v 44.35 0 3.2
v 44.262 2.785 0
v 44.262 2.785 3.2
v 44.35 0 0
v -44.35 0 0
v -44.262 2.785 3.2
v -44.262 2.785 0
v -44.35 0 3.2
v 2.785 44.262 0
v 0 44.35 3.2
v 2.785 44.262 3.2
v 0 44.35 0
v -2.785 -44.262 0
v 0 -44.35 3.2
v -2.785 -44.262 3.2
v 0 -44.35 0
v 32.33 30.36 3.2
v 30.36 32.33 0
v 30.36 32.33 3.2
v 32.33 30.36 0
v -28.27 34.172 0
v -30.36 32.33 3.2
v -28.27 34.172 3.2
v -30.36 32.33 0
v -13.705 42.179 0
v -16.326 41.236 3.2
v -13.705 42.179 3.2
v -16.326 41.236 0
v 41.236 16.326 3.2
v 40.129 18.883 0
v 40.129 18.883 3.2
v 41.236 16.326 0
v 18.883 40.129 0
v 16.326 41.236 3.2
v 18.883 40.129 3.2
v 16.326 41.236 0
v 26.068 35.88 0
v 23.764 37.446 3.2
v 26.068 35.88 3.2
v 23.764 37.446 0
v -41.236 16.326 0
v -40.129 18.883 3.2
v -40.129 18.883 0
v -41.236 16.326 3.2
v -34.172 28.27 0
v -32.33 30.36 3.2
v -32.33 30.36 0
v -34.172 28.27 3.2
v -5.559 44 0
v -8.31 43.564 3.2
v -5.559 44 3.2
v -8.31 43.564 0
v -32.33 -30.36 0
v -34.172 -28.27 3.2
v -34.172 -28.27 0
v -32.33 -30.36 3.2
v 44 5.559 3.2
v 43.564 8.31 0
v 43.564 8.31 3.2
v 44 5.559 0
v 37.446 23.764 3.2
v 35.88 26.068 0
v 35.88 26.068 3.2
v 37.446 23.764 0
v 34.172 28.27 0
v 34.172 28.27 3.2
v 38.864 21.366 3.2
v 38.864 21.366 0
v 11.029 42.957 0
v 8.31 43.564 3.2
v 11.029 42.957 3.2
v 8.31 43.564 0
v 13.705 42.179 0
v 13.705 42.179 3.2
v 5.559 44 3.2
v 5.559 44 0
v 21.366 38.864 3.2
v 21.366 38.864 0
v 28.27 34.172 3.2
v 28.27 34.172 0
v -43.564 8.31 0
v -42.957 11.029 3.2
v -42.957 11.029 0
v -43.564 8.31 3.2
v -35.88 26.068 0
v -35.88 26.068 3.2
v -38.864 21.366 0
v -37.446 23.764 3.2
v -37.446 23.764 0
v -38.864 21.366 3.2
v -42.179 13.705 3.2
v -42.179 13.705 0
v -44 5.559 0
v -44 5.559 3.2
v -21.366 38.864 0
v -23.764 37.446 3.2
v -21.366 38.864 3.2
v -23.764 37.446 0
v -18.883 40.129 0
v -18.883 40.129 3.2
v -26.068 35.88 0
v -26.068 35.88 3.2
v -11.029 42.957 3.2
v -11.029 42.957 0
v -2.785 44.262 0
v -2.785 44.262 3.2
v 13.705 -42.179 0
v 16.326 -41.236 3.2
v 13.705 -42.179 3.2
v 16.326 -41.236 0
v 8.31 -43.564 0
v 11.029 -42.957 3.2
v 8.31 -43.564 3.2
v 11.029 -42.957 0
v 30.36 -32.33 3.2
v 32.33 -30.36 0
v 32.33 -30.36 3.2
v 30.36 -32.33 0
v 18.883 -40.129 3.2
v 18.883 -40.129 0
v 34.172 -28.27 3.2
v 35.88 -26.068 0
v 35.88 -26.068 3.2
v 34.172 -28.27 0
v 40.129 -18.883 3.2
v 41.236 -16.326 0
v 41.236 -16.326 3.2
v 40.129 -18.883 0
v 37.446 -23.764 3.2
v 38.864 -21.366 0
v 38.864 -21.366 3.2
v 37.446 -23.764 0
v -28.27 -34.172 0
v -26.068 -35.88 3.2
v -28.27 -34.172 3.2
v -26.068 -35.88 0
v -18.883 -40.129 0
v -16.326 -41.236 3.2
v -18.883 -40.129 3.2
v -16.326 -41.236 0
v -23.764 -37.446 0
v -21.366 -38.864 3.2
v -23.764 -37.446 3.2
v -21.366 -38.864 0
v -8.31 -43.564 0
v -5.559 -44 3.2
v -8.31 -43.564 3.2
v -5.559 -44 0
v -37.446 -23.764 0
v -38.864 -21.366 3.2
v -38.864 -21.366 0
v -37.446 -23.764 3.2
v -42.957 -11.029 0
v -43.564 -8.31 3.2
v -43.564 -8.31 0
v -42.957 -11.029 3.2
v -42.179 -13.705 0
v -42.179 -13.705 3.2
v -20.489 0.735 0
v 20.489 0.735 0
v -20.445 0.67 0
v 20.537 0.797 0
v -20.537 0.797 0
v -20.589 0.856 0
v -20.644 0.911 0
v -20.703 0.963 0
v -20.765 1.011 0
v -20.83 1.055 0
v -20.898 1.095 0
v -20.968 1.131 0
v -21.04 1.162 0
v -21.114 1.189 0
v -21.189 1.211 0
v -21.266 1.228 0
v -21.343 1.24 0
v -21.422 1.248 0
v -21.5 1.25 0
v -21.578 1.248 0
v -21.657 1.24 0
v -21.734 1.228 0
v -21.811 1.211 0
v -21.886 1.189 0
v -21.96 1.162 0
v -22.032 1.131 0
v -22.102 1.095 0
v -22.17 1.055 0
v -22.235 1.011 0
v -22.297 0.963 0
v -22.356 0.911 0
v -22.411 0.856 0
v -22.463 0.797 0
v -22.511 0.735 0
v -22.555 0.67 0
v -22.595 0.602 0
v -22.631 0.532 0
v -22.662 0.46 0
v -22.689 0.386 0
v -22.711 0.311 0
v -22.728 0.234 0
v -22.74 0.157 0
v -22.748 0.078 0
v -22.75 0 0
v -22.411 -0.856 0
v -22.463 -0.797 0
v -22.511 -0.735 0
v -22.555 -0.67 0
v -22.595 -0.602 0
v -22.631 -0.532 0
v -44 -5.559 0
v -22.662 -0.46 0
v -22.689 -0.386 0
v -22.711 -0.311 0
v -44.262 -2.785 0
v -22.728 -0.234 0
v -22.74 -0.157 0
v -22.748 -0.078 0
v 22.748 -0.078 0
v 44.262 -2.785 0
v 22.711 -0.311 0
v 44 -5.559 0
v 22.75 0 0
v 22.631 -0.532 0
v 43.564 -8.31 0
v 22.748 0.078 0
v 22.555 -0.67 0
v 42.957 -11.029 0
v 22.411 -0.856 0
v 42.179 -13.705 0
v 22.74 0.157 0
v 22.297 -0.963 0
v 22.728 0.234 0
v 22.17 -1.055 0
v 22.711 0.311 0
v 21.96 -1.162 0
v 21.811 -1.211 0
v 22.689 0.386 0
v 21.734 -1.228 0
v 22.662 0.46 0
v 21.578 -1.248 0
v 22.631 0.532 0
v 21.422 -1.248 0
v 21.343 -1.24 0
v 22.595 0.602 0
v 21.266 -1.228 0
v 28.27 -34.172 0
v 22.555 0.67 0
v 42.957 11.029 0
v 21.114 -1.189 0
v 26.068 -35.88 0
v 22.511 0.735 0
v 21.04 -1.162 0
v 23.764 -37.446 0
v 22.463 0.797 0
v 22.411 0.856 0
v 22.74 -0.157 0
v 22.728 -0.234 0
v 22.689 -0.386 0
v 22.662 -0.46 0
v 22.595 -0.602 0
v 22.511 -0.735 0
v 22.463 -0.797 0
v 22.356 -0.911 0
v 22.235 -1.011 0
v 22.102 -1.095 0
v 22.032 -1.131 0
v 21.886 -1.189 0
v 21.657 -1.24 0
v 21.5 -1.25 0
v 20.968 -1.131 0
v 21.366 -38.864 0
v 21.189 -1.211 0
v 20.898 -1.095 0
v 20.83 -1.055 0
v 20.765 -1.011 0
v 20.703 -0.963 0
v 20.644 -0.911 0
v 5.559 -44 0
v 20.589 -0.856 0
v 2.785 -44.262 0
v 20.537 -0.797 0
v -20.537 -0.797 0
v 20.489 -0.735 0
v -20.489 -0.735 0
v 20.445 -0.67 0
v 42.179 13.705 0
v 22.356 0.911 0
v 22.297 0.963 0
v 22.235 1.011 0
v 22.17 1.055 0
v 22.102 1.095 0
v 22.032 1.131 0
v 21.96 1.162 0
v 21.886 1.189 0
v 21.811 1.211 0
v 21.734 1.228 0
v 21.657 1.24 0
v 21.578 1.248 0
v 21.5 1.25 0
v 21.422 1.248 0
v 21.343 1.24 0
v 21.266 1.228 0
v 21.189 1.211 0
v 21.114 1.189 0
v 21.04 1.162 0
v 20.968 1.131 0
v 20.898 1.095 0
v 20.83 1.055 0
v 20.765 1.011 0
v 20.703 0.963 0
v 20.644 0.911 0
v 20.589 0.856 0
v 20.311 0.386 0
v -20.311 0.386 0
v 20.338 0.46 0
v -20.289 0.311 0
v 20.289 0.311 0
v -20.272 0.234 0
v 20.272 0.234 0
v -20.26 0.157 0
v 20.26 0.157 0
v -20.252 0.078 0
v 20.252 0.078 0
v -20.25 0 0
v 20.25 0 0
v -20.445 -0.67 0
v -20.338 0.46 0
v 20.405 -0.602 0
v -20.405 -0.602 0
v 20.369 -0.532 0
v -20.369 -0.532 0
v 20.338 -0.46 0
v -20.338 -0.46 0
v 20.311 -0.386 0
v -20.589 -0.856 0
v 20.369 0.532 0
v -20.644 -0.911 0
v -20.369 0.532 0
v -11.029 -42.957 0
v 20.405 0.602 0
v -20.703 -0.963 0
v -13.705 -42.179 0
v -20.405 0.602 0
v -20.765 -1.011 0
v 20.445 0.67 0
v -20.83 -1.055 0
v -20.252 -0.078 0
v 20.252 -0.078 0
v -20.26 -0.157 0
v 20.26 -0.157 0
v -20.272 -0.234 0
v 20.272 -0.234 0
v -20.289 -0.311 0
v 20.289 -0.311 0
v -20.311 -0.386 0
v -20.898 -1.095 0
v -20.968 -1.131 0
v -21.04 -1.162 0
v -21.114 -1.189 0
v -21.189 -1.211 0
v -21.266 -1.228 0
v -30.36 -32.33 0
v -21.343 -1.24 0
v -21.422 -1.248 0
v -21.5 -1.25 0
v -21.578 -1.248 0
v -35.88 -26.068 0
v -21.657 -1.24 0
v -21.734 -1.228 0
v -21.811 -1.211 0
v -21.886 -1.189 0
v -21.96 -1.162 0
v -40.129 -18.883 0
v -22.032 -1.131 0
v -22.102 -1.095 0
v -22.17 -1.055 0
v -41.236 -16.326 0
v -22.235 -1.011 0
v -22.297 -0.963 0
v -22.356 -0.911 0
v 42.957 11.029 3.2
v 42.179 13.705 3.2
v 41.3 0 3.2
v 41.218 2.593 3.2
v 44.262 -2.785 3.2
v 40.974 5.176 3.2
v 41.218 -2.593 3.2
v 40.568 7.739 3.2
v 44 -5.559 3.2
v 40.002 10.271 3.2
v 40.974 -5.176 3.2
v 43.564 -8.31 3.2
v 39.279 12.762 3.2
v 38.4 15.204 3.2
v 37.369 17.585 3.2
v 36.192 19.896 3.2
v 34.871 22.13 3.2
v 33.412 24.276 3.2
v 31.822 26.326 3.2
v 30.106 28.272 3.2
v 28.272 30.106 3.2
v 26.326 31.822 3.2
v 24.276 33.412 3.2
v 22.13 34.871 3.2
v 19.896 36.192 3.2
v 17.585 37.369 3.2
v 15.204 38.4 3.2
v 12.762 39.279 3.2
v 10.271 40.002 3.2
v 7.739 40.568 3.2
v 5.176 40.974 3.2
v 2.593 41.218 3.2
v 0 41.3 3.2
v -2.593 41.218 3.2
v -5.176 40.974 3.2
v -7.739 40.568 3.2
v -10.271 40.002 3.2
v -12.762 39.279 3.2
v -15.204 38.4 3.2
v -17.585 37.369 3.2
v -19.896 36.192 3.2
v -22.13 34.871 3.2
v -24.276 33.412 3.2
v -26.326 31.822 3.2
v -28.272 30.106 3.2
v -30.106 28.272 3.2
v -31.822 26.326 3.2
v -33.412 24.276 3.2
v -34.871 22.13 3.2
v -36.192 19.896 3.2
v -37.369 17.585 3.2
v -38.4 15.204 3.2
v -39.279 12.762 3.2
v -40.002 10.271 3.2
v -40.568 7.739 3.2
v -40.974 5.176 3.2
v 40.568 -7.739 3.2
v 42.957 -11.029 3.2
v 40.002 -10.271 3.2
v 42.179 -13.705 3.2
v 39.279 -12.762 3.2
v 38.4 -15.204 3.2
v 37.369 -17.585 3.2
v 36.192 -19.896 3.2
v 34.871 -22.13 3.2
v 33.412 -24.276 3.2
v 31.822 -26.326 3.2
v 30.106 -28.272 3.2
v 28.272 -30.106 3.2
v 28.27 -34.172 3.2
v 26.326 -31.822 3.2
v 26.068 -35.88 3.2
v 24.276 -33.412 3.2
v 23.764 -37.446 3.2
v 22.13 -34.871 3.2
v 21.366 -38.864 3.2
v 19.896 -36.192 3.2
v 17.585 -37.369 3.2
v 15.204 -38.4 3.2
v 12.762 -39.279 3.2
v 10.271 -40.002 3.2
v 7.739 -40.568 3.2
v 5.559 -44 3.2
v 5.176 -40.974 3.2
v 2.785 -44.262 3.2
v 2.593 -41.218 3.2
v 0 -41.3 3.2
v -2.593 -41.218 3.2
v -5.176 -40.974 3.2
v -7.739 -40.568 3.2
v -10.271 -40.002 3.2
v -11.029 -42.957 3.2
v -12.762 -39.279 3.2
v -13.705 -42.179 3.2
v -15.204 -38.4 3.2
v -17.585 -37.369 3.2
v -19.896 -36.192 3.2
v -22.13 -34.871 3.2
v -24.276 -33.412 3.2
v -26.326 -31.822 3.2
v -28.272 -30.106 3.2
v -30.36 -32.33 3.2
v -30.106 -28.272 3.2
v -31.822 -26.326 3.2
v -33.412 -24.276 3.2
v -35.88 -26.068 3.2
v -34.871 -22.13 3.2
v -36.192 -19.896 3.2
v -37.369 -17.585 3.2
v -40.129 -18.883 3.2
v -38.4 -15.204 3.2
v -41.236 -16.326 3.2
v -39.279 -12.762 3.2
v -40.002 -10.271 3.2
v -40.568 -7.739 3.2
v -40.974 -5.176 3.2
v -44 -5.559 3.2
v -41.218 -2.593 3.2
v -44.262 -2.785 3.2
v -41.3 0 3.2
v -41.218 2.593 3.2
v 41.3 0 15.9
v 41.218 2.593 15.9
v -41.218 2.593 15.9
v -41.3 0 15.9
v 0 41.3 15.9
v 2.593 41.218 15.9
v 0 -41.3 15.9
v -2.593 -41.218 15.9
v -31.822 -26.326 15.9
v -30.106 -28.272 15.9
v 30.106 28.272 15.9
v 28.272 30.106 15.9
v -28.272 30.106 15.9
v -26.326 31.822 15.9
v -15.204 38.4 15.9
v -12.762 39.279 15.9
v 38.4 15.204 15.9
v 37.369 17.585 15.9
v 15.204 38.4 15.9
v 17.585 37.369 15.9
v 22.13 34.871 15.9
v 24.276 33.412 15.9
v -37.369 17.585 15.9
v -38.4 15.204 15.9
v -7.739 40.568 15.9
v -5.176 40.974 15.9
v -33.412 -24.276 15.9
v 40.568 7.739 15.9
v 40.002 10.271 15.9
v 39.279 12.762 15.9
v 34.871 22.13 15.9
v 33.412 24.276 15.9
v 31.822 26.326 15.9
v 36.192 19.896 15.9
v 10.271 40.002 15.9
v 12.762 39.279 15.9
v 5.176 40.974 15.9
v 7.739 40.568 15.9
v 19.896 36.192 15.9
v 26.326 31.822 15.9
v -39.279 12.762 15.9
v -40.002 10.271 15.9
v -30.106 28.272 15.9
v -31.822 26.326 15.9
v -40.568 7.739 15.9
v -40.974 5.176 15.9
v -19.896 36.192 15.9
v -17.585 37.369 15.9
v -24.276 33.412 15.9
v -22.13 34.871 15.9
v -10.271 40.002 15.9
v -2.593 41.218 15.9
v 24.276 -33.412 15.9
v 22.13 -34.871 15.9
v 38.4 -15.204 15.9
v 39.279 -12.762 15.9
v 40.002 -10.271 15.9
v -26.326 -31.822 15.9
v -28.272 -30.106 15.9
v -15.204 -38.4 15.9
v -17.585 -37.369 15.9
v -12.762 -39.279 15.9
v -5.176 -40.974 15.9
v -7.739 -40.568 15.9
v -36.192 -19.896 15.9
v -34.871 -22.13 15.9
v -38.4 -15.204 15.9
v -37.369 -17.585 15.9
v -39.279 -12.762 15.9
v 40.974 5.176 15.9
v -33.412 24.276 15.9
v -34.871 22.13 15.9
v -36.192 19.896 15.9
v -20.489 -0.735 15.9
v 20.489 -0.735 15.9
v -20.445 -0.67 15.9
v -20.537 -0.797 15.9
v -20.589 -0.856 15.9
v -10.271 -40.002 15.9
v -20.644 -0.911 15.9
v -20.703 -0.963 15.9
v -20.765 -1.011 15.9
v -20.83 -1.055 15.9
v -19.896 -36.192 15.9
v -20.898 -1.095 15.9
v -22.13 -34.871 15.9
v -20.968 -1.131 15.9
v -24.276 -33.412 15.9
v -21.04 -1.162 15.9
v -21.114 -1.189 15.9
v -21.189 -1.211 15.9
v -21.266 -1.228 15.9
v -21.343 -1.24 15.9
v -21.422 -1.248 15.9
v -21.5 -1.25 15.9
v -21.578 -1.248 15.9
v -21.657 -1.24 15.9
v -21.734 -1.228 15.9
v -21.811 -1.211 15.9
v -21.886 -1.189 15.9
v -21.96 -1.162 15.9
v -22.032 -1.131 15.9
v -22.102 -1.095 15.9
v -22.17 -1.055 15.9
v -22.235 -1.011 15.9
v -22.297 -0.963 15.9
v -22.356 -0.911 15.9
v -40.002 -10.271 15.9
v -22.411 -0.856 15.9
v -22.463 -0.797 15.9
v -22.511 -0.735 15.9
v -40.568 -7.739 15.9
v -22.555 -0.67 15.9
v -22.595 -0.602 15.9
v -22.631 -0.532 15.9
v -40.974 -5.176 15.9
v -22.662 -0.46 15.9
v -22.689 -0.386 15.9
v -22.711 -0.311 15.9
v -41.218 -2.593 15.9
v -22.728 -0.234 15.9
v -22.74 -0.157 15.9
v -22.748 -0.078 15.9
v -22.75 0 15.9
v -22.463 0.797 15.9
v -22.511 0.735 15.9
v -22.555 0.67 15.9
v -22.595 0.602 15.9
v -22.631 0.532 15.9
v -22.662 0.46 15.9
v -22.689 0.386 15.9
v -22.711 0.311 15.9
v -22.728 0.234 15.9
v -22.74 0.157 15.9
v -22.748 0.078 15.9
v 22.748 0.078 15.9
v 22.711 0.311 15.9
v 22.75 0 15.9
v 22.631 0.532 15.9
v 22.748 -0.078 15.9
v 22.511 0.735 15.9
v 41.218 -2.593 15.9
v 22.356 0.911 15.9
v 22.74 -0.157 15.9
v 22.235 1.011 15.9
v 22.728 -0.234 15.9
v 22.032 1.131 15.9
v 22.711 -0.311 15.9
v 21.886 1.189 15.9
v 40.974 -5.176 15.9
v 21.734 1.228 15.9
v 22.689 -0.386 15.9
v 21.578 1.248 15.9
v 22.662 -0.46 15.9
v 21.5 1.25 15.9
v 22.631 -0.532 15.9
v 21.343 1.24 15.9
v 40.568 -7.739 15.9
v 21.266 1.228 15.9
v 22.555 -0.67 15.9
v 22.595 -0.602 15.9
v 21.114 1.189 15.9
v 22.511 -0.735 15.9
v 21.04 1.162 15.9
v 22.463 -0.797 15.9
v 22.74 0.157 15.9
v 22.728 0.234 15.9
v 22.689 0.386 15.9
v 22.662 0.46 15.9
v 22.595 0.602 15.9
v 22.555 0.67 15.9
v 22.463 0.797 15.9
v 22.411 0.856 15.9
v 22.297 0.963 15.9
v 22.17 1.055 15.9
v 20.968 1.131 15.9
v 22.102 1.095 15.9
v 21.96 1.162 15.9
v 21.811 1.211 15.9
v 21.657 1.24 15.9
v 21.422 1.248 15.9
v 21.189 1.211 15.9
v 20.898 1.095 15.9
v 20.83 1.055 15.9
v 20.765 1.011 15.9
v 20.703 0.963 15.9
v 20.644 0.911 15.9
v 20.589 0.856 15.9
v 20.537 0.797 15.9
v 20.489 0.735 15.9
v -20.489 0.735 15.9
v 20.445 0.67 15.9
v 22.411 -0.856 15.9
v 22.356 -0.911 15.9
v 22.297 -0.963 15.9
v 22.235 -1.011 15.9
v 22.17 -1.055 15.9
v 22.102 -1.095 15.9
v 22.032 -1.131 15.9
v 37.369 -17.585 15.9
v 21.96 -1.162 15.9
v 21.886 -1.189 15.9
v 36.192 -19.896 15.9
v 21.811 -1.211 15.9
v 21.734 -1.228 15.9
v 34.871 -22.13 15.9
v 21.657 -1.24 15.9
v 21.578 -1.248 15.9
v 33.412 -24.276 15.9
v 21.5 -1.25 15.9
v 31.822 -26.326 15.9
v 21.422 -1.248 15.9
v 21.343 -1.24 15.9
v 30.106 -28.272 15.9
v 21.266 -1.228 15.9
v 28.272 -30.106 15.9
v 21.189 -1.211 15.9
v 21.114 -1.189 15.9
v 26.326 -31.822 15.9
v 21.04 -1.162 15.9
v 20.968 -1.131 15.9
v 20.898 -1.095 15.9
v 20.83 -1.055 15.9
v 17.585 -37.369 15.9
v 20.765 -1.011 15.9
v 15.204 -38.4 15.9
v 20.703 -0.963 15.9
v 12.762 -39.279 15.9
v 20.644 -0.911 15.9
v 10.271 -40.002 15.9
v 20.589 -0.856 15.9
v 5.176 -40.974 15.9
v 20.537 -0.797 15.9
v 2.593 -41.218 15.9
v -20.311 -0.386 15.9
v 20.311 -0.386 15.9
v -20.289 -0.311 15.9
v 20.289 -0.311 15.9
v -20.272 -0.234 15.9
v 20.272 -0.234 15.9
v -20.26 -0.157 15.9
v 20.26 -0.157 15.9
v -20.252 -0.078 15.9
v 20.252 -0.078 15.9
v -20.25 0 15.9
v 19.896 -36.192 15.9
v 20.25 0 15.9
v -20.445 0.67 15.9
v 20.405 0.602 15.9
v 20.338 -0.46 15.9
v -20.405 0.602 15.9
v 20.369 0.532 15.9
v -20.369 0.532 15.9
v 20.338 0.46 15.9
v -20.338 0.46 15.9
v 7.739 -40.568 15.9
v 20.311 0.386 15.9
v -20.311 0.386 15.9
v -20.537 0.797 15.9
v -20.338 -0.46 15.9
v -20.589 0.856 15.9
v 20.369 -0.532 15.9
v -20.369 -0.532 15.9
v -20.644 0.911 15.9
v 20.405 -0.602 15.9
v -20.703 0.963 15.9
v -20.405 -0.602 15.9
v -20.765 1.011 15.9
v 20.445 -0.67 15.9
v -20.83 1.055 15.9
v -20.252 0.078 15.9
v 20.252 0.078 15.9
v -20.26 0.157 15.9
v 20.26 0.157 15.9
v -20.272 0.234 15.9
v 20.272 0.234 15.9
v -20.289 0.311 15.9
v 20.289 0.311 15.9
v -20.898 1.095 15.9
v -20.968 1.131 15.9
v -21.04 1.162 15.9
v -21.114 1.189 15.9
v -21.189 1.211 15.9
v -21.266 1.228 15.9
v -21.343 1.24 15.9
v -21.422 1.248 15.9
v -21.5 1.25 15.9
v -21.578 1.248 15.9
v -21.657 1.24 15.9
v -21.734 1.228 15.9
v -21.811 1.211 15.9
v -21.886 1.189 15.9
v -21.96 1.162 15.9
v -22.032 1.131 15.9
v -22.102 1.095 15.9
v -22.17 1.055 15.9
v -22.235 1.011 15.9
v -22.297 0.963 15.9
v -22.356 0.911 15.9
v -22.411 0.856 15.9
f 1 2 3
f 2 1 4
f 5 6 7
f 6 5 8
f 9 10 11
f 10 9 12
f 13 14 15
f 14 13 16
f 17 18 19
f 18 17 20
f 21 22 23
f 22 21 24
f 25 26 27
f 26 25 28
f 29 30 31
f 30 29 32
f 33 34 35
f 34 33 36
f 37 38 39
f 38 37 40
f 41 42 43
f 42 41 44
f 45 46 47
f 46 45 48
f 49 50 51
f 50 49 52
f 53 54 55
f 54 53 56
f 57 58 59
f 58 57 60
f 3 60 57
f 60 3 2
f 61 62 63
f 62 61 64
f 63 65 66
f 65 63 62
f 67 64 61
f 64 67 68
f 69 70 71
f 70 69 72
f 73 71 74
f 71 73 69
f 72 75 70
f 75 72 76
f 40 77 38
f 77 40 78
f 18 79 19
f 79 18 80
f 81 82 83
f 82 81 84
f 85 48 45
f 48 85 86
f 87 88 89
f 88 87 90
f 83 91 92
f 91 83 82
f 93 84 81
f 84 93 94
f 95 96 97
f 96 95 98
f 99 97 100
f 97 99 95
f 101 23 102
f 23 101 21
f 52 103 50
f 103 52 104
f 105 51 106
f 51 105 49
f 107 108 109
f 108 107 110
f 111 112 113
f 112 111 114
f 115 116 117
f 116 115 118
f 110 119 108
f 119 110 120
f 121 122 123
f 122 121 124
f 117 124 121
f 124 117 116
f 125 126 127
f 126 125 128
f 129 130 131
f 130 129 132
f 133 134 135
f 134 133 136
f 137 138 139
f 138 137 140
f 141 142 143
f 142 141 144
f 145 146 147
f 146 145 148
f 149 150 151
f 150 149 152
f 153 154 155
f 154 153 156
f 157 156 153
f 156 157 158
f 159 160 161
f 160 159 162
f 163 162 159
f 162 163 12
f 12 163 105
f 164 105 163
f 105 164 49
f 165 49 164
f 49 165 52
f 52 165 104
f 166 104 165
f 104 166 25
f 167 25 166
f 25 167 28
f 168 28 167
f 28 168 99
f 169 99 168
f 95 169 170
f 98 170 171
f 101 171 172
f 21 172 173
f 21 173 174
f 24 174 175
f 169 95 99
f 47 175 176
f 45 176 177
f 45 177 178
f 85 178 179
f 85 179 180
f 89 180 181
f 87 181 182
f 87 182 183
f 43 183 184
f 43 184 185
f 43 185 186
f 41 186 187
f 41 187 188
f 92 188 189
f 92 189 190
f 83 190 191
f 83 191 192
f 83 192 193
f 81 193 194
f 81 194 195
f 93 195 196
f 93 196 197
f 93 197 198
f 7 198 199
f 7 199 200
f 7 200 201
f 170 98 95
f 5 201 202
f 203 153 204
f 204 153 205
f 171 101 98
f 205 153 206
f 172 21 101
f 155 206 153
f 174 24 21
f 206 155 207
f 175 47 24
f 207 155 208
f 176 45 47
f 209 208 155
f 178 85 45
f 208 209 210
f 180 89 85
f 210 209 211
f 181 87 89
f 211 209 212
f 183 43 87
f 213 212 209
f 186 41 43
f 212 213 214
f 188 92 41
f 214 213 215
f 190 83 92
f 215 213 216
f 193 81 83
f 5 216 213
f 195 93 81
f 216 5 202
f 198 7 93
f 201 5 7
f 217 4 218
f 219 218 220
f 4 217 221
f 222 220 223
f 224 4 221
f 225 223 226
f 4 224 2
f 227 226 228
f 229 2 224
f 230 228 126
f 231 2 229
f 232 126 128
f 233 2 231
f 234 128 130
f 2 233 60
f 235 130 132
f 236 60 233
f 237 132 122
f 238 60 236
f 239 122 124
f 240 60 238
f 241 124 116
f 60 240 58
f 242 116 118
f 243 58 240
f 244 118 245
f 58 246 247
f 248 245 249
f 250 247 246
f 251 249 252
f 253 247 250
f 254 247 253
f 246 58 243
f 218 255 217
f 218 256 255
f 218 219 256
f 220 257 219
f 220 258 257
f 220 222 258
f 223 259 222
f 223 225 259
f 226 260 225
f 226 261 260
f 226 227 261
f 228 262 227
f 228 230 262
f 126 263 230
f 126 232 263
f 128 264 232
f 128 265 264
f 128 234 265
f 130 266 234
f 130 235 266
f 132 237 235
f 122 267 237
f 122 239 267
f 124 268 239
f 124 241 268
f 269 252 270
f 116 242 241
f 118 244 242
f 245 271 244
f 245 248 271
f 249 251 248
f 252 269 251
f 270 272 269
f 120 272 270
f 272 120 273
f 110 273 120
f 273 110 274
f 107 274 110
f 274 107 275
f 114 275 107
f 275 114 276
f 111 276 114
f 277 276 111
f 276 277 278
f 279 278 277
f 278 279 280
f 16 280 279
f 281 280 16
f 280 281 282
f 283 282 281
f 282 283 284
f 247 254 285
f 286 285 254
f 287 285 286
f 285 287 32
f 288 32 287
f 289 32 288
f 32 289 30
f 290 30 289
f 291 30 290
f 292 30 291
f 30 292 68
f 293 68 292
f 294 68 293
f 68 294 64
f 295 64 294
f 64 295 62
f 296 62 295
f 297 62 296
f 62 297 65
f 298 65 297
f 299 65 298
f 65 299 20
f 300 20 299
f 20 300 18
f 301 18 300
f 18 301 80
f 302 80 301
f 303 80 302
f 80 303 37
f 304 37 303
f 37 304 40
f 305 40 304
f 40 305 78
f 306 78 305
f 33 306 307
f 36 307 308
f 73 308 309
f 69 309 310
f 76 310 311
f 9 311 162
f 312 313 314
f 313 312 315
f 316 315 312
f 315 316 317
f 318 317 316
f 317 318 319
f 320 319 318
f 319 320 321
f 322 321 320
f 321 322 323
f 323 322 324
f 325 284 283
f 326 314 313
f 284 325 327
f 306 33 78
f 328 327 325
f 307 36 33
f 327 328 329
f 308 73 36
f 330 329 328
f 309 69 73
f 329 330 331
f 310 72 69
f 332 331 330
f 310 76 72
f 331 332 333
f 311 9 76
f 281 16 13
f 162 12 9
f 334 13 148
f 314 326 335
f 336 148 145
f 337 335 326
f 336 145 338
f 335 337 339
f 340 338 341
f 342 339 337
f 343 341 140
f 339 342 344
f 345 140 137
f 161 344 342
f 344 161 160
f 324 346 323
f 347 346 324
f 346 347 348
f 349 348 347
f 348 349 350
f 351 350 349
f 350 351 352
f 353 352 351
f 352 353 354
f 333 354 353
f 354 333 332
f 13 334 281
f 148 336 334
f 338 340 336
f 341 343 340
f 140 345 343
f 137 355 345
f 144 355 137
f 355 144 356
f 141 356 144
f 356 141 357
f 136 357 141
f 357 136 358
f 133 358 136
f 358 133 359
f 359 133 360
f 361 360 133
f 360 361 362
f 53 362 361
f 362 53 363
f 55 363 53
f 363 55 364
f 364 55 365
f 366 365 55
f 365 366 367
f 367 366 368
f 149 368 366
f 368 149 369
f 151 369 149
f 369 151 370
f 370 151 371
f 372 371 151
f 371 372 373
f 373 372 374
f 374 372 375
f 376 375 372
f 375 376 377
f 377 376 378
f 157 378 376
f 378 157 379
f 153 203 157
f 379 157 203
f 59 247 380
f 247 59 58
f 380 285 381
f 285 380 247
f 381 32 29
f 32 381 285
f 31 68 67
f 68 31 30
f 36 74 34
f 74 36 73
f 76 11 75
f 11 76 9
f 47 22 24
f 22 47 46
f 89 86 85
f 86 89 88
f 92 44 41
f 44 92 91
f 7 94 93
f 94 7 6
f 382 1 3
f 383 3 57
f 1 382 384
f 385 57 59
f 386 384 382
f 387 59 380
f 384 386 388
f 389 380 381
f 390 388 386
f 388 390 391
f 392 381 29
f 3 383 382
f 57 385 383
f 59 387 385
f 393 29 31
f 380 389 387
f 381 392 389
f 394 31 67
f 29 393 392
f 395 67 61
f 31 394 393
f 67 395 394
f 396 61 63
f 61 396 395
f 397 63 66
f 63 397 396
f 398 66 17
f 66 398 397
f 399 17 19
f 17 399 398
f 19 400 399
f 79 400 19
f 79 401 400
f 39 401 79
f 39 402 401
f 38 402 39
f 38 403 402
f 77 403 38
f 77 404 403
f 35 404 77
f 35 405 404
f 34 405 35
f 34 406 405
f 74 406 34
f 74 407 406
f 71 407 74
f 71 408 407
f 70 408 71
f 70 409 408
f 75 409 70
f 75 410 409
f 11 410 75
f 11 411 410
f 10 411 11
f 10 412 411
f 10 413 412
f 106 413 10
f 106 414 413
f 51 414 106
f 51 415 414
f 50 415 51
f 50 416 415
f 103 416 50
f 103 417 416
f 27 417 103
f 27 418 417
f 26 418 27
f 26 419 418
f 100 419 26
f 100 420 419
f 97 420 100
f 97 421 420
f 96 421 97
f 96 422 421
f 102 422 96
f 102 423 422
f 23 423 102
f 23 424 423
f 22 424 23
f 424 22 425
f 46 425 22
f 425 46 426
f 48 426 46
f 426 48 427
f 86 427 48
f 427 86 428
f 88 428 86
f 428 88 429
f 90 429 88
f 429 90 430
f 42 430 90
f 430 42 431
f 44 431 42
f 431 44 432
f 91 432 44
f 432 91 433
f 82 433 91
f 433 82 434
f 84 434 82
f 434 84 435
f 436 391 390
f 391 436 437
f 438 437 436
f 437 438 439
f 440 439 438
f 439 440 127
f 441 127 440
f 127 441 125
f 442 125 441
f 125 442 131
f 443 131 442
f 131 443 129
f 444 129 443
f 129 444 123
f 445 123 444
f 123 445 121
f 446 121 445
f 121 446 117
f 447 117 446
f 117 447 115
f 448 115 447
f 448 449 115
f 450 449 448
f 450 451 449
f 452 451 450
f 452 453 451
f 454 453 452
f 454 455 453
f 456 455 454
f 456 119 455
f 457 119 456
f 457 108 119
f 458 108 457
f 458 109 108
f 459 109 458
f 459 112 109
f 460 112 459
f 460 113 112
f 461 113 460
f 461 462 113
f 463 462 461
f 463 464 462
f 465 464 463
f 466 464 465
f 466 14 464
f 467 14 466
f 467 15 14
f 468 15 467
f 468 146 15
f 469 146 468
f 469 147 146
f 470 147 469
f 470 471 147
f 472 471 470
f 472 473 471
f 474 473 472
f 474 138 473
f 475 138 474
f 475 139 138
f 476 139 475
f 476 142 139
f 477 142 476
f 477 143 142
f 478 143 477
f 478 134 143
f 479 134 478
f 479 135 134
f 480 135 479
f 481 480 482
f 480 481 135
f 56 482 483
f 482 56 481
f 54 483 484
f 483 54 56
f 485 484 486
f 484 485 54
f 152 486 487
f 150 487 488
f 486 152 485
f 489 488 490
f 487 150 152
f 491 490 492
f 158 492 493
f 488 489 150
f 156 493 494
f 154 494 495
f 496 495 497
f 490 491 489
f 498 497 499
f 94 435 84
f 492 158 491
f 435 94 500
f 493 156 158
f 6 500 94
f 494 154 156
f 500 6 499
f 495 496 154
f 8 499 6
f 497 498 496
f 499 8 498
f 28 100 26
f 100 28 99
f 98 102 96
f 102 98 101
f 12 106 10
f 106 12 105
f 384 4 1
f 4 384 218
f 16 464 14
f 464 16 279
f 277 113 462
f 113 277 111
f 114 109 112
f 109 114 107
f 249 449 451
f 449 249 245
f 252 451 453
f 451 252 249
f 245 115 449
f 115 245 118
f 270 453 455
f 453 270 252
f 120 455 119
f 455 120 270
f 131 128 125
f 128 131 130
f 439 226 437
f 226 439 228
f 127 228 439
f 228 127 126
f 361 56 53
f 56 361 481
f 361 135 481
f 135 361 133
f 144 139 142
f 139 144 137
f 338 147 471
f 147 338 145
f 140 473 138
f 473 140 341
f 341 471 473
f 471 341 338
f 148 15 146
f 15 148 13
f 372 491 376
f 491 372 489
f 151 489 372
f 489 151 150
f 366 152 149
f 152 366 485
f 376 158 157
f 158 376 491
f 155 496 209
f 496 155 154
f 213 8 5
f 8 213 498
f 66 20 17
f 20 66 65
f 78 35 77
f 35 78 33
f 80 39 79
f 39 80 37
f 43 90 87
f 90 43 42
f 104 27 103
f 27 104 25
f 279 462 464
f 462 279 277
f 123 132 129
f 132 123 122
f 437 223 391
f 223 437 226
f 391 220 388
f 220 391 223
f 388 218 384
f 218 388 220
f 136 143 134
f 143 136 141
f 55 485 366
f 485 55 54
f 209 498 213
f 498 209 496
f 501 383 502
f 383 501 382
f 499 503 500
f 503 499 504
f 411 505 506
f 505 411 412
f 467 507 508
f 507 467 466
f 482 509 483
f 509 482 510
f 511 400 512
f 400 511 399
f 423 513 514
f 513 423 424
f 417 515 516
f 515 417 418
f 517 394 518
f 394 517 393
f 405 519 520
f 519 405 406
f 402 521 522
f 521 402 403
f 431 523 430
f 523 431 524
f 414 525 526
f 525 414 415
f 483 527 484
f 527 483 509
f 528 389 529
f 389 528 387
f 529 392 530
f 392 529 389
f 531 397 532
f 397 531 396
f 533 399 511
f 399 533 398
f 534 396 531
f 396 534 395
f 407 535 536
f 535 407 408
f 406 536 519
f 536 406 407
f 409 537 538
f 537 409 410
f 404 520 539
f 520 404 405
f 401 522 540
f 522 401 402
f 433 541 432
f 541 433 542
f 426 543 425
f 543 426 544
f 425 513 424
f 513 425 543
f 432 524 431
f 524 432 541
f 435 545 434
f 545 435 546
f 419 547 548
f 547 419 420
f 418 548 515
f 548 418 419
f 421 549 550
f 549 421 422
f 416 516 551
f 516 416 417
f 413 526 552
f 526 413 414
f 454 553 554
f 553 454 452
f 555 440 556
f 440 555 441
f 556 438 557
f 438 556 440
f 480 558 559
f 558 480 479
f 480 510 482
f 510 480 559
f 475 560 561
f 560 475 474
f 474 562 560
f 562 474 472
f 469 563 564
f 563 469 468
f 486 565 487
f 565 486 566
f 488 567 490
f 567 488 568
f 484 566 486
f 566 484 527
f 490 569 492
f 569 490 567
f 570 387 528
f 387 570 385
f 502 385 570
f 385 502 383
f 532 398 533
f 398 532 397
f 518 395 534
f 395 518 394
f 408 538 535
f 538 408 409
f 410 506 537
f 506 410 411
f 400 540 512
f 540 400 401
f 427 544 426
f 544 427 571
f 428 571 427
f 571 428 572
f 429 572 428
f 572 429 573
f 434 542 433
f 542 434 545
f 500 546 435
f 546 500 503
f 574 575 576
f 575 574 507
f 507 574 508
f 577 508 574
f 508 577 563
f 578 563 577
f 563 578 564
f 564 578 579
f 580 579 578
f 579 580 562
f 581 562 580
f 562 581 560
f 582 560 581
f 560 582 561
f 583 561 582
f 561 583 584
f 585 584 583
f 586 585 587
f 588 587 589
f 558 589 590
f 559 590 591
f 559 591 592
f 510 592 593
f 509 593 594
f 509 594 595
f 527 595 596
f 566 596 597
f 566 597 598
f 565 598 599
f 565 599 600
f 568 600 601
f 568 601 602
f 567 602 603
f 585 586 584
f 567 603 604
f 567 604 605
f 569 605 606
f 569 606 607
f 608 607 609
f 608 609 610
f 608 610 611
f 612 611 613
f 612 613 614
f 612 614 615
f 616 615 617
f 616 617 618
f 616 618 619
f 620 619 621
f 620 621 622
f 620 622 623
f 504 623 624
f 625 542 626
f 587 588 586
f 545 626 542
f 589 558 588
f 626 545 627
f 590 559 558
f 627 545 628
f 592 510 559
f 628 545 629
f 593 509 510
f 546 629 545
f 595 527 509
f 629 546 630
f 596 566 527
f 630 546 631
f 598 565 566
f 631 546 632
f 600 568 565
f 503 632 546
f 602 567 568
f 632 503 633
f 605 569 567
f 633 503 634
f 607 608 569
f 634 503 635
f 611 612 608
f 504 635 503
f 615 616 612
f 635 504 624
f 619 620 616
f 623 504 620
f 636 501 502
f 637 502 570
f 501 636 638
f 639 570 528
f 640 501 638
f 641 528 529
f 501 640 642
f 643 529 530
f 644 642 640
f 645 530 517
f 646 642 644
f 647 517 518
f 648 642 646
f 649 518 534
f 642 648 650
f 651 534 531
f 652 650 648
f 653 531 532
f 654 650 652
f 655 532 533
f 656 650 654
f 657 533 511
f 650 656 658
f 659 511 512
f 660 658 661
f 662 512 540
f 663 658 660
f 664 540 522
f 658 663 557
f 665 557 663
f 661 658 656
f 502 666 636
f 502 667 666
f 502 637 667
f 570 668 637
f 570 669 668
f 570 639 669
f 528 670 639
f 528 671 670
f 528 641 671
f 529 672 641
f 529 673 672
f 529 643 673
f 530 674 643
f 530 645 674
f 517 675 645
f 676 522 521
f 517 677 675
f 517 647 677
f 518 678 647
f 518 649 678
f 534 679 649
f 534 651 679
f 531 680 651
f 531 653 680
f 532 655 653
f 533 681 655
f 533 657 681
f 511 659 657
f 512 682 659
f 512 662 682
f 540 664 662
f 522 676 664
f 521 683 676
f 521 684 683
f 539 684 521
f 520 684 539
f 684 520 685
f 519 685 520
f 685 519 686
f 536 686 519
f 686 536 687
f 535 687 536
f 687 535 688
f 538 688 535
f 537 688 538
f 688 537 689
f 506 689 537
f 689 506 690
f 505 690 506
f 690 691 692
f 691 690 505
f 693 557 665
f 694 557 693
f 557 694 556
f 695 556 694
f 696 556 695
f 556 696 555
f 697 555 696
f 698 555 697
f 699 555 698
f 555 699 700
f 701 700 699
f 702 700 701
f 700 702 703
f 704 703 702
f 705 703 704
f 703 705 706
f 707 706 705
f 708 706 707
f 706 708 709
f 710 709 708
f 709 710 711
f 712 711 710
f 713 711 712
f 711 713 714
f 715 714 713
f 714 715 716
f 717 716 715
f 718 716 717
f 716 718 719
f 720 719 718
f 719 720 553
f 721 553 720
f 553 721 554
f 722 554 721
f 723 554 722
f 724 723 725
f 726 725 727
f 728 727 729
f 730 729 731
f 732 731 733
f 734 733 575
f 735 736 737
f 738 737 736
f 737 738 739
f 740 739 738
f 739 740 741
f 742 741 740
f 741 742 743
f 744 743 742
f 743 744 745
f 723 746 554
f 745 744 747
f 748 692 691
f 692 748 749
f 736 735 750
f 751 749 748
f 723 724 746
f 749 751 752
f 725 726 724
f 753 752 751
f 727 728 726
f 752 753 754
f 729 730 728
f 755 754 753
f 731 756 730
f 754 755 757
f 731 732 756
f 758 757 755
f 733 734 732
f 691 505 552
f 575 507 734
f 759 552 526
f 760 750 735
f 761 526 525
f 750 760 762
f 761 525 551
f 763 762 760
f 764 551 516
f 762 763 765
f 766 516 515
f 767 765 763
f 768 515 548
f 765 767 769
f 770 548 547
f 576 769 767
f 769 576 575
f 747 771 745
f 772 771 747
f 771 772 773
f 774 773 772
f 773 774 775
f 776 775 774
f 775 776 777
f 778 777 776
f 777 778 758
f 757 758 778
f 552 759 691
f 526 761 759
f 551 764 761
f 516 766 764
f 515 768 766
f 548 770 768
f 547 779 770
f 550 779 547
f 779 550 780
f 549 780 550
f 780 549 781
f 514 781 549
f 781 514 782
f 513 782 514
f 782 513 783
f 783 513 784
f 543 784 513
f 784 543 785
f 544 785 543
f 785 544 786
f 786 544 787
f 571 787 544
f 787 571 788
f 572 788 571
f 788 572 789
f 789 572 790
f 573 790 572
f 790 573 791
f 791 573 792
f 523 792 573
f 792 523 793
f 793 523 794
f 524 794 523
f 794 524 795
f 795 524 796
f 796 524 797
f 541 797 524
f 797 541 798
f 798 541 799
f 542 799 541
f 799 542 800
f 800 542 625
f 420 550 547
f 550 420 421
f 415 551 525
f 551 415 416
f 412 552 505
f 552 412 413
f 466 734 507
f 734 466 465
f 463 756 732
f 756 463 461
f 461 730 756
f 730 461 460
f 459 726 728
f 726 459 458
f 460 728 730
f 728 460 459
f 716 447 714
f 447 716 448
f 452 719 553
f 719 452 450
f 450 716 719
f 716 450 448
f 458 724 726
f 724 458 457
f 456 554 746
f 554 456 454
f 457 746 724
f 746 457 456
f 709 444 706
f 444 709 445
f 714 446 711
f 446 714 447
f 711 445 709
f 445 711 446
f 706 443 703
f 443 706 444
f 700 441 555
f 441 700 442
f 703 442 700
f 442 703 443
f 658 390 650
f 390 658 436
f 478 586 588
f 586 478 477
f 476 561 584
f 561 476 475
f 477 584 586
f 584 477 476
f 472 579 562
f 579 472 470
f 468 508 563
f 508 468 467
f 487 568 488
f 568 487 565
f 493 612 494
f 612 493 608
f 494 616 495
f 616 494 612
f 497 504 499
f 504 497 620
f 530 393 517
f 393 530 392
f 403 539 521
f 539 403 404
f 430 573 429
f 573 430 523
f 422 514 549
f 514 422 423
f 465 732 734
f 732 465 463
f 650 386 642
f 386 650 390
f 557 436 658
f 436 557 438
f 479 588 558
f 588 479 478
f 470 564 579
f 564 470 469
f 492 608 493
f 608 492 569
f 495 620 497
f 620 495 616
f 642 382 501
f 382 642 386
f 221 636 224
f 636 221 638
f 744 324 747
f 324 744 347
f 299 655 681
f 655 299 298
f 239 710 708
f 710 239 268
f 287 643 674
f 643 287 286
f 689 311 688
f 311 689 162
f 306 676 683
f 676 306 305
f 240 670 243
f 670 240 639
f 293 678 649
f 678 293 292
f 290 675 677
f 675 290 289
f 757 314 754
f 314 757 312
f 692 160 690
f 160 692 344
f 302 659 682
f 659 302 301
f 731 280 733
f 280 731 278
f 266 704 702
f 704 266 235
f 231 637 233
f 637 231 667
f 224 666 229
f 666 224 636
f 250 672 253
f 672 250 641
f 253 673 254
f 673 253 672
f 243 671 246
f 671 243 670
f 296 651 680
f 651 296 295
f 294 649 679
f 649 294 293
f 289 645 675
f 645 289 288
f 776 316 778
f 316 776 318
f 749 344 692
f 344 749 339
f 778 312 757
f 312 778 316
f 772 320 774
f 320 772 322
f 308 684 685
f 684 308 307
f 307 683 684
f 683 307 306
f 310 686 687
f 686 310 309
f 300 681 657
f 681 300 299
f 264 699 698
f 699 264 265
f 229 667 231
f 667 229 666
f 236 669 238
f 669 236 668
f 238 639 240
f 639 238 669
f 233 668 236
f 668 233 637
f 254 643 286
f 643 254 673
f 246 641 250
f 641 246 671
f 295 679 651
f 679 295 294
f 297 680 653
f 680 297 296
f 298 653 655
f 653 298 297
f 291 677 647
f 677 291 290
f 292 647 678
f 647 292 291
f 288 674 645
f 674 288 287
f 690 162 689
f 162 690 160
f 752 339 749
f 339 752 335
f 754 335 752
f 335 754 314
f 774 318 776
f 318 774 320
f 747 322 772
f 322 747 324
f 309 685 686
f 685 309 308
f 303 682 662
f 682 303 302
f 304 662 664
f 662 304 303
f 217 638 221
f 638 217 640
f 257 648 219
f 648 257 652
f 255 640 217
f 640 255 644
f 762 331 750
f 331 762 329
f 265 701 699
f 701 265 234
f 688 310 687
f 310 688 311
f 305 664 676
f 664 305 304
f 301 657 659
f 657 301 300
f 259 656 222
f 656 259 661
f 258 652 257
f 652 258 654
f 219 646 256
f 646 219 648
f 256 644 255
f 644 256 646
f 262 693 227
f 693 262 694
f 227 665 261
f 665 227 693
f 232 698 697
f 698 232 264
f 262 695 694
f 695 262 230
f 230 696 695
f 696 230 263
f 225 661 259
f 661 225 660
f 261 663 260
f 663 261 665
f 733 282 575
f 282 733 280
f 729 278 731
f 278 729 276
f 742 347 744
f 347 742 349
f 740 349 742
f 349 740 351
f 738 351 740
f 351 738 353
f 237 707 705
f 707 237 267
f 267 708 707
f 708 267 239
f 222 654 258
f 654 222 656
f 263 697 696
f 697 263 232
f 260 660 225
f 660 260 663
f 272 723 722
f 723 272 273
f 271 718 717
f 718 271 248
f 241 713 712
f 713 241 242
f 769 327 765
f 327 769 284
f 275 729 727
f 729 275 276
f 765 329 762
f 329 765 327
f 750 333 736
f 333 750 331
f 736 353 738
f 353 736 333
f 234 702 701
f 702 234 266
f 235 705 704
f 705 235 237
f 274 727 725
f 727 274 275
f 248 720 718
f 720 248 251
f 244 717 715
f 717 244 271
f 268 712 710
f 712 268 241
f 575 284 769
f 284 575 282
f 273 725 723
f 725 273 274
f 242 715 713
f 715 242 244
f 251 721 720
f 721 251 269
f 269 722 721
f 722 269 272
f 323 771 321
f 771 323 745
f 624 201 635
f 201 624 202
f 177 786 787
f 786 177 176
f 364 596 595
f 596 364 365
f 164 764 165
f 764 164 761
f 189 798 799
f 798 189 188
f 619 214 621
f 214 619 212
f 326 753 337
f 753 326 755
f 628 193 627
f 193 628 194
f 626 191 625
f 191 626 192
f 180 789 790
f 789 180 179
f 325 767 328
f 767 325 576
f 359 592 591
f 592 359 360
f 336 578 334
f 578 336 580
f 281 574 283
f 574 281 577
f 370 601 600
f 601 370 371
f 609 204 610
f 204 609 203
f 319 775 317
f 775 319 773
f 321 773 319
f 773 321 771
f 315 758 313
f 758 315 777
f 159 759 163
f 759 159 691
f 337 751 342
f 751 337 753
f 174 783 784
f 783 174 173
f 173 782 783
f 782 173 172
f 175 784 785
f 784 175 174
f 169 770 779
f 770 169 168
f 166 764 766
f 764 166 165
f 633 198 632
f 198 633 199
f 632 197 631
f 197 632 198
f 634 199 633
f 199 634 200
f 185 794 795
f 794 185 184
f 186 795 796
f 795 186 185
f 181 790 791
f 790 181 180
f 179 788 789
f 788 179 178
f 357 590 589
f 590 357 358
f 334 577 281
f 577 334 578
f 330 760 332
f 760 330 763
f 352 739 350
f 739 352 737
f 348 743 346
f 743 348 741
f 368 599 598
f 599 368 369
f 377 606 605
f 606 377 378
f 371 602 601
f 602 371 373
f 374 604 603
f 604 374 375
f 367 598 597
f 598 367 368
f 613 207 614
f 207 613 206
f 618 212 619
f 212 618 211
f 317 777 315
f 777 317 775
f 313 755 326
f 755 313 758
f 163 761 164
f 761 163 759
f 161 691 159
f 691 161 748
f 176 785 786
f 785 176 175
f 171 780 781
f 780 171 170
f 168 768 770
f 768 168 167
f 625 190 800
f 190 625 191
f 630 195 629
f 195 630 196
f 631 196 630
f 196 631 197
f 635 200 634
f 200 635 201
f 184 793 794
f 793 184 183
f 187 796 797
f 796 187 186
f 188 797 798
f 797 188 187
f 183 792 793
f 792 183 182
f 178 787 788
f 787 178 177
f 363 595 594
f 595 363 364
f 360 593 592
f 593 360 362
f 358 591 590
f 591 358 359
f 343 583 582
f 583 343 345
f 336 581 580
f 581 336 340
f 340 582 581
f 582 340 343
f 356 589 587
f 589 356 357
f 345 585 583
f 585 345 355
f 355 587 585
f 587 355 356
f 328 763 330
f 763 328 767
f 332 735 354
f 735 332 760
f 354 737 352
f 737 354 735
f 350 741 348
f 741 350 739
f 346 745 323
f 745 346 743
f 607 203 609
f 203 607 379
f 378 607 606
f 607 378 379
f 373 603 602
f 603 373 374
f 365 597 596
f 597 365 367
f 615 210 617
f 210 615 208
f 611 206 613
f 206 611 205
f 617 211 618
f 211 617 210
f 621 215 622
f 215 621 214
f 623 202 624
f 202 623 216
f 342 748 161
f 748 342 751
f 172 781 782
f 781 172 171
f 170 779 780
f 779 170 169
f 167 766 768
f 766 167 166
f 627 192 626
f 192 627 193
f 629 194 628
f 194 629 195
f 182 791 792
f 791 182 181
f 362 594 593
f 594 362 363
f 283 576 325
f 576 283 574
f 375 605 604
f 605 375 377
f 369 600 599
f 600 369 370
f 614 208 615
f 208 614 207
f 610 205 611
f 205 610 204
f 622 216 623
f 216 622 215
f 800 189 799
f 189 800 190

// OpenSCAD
$fn=100;

// Clippard valve spacer for synchrotron
// per http://www.gbfans.com/wiki/File:Stefan%27s_Proton_Pack_Plans_Page_2.jpg

baseDiameter = 88.7;
baseHeight = 3.2;
spacerDiameter = 82.6;
spacerHeight = 12.7;

difference() {
    union() {
        cylinder(d=baseDiameter, h=baseHeight);
        translate([0,0,baseHeight])
        cylinder(d=spacerDiameter, h=spacerHeight);
    }
    
    // screw holes for valve, to suit 3 mm screw, 43mm apart
    translate([43.0/2,0,-1])
    cylinder(d=2.5, h=baseHeight + spacerHeight + 2);
    translate([-43.0/2,0,-1])
    cylinder(d=2.5, h=baseHeight + spacerHeight + 2);
}
